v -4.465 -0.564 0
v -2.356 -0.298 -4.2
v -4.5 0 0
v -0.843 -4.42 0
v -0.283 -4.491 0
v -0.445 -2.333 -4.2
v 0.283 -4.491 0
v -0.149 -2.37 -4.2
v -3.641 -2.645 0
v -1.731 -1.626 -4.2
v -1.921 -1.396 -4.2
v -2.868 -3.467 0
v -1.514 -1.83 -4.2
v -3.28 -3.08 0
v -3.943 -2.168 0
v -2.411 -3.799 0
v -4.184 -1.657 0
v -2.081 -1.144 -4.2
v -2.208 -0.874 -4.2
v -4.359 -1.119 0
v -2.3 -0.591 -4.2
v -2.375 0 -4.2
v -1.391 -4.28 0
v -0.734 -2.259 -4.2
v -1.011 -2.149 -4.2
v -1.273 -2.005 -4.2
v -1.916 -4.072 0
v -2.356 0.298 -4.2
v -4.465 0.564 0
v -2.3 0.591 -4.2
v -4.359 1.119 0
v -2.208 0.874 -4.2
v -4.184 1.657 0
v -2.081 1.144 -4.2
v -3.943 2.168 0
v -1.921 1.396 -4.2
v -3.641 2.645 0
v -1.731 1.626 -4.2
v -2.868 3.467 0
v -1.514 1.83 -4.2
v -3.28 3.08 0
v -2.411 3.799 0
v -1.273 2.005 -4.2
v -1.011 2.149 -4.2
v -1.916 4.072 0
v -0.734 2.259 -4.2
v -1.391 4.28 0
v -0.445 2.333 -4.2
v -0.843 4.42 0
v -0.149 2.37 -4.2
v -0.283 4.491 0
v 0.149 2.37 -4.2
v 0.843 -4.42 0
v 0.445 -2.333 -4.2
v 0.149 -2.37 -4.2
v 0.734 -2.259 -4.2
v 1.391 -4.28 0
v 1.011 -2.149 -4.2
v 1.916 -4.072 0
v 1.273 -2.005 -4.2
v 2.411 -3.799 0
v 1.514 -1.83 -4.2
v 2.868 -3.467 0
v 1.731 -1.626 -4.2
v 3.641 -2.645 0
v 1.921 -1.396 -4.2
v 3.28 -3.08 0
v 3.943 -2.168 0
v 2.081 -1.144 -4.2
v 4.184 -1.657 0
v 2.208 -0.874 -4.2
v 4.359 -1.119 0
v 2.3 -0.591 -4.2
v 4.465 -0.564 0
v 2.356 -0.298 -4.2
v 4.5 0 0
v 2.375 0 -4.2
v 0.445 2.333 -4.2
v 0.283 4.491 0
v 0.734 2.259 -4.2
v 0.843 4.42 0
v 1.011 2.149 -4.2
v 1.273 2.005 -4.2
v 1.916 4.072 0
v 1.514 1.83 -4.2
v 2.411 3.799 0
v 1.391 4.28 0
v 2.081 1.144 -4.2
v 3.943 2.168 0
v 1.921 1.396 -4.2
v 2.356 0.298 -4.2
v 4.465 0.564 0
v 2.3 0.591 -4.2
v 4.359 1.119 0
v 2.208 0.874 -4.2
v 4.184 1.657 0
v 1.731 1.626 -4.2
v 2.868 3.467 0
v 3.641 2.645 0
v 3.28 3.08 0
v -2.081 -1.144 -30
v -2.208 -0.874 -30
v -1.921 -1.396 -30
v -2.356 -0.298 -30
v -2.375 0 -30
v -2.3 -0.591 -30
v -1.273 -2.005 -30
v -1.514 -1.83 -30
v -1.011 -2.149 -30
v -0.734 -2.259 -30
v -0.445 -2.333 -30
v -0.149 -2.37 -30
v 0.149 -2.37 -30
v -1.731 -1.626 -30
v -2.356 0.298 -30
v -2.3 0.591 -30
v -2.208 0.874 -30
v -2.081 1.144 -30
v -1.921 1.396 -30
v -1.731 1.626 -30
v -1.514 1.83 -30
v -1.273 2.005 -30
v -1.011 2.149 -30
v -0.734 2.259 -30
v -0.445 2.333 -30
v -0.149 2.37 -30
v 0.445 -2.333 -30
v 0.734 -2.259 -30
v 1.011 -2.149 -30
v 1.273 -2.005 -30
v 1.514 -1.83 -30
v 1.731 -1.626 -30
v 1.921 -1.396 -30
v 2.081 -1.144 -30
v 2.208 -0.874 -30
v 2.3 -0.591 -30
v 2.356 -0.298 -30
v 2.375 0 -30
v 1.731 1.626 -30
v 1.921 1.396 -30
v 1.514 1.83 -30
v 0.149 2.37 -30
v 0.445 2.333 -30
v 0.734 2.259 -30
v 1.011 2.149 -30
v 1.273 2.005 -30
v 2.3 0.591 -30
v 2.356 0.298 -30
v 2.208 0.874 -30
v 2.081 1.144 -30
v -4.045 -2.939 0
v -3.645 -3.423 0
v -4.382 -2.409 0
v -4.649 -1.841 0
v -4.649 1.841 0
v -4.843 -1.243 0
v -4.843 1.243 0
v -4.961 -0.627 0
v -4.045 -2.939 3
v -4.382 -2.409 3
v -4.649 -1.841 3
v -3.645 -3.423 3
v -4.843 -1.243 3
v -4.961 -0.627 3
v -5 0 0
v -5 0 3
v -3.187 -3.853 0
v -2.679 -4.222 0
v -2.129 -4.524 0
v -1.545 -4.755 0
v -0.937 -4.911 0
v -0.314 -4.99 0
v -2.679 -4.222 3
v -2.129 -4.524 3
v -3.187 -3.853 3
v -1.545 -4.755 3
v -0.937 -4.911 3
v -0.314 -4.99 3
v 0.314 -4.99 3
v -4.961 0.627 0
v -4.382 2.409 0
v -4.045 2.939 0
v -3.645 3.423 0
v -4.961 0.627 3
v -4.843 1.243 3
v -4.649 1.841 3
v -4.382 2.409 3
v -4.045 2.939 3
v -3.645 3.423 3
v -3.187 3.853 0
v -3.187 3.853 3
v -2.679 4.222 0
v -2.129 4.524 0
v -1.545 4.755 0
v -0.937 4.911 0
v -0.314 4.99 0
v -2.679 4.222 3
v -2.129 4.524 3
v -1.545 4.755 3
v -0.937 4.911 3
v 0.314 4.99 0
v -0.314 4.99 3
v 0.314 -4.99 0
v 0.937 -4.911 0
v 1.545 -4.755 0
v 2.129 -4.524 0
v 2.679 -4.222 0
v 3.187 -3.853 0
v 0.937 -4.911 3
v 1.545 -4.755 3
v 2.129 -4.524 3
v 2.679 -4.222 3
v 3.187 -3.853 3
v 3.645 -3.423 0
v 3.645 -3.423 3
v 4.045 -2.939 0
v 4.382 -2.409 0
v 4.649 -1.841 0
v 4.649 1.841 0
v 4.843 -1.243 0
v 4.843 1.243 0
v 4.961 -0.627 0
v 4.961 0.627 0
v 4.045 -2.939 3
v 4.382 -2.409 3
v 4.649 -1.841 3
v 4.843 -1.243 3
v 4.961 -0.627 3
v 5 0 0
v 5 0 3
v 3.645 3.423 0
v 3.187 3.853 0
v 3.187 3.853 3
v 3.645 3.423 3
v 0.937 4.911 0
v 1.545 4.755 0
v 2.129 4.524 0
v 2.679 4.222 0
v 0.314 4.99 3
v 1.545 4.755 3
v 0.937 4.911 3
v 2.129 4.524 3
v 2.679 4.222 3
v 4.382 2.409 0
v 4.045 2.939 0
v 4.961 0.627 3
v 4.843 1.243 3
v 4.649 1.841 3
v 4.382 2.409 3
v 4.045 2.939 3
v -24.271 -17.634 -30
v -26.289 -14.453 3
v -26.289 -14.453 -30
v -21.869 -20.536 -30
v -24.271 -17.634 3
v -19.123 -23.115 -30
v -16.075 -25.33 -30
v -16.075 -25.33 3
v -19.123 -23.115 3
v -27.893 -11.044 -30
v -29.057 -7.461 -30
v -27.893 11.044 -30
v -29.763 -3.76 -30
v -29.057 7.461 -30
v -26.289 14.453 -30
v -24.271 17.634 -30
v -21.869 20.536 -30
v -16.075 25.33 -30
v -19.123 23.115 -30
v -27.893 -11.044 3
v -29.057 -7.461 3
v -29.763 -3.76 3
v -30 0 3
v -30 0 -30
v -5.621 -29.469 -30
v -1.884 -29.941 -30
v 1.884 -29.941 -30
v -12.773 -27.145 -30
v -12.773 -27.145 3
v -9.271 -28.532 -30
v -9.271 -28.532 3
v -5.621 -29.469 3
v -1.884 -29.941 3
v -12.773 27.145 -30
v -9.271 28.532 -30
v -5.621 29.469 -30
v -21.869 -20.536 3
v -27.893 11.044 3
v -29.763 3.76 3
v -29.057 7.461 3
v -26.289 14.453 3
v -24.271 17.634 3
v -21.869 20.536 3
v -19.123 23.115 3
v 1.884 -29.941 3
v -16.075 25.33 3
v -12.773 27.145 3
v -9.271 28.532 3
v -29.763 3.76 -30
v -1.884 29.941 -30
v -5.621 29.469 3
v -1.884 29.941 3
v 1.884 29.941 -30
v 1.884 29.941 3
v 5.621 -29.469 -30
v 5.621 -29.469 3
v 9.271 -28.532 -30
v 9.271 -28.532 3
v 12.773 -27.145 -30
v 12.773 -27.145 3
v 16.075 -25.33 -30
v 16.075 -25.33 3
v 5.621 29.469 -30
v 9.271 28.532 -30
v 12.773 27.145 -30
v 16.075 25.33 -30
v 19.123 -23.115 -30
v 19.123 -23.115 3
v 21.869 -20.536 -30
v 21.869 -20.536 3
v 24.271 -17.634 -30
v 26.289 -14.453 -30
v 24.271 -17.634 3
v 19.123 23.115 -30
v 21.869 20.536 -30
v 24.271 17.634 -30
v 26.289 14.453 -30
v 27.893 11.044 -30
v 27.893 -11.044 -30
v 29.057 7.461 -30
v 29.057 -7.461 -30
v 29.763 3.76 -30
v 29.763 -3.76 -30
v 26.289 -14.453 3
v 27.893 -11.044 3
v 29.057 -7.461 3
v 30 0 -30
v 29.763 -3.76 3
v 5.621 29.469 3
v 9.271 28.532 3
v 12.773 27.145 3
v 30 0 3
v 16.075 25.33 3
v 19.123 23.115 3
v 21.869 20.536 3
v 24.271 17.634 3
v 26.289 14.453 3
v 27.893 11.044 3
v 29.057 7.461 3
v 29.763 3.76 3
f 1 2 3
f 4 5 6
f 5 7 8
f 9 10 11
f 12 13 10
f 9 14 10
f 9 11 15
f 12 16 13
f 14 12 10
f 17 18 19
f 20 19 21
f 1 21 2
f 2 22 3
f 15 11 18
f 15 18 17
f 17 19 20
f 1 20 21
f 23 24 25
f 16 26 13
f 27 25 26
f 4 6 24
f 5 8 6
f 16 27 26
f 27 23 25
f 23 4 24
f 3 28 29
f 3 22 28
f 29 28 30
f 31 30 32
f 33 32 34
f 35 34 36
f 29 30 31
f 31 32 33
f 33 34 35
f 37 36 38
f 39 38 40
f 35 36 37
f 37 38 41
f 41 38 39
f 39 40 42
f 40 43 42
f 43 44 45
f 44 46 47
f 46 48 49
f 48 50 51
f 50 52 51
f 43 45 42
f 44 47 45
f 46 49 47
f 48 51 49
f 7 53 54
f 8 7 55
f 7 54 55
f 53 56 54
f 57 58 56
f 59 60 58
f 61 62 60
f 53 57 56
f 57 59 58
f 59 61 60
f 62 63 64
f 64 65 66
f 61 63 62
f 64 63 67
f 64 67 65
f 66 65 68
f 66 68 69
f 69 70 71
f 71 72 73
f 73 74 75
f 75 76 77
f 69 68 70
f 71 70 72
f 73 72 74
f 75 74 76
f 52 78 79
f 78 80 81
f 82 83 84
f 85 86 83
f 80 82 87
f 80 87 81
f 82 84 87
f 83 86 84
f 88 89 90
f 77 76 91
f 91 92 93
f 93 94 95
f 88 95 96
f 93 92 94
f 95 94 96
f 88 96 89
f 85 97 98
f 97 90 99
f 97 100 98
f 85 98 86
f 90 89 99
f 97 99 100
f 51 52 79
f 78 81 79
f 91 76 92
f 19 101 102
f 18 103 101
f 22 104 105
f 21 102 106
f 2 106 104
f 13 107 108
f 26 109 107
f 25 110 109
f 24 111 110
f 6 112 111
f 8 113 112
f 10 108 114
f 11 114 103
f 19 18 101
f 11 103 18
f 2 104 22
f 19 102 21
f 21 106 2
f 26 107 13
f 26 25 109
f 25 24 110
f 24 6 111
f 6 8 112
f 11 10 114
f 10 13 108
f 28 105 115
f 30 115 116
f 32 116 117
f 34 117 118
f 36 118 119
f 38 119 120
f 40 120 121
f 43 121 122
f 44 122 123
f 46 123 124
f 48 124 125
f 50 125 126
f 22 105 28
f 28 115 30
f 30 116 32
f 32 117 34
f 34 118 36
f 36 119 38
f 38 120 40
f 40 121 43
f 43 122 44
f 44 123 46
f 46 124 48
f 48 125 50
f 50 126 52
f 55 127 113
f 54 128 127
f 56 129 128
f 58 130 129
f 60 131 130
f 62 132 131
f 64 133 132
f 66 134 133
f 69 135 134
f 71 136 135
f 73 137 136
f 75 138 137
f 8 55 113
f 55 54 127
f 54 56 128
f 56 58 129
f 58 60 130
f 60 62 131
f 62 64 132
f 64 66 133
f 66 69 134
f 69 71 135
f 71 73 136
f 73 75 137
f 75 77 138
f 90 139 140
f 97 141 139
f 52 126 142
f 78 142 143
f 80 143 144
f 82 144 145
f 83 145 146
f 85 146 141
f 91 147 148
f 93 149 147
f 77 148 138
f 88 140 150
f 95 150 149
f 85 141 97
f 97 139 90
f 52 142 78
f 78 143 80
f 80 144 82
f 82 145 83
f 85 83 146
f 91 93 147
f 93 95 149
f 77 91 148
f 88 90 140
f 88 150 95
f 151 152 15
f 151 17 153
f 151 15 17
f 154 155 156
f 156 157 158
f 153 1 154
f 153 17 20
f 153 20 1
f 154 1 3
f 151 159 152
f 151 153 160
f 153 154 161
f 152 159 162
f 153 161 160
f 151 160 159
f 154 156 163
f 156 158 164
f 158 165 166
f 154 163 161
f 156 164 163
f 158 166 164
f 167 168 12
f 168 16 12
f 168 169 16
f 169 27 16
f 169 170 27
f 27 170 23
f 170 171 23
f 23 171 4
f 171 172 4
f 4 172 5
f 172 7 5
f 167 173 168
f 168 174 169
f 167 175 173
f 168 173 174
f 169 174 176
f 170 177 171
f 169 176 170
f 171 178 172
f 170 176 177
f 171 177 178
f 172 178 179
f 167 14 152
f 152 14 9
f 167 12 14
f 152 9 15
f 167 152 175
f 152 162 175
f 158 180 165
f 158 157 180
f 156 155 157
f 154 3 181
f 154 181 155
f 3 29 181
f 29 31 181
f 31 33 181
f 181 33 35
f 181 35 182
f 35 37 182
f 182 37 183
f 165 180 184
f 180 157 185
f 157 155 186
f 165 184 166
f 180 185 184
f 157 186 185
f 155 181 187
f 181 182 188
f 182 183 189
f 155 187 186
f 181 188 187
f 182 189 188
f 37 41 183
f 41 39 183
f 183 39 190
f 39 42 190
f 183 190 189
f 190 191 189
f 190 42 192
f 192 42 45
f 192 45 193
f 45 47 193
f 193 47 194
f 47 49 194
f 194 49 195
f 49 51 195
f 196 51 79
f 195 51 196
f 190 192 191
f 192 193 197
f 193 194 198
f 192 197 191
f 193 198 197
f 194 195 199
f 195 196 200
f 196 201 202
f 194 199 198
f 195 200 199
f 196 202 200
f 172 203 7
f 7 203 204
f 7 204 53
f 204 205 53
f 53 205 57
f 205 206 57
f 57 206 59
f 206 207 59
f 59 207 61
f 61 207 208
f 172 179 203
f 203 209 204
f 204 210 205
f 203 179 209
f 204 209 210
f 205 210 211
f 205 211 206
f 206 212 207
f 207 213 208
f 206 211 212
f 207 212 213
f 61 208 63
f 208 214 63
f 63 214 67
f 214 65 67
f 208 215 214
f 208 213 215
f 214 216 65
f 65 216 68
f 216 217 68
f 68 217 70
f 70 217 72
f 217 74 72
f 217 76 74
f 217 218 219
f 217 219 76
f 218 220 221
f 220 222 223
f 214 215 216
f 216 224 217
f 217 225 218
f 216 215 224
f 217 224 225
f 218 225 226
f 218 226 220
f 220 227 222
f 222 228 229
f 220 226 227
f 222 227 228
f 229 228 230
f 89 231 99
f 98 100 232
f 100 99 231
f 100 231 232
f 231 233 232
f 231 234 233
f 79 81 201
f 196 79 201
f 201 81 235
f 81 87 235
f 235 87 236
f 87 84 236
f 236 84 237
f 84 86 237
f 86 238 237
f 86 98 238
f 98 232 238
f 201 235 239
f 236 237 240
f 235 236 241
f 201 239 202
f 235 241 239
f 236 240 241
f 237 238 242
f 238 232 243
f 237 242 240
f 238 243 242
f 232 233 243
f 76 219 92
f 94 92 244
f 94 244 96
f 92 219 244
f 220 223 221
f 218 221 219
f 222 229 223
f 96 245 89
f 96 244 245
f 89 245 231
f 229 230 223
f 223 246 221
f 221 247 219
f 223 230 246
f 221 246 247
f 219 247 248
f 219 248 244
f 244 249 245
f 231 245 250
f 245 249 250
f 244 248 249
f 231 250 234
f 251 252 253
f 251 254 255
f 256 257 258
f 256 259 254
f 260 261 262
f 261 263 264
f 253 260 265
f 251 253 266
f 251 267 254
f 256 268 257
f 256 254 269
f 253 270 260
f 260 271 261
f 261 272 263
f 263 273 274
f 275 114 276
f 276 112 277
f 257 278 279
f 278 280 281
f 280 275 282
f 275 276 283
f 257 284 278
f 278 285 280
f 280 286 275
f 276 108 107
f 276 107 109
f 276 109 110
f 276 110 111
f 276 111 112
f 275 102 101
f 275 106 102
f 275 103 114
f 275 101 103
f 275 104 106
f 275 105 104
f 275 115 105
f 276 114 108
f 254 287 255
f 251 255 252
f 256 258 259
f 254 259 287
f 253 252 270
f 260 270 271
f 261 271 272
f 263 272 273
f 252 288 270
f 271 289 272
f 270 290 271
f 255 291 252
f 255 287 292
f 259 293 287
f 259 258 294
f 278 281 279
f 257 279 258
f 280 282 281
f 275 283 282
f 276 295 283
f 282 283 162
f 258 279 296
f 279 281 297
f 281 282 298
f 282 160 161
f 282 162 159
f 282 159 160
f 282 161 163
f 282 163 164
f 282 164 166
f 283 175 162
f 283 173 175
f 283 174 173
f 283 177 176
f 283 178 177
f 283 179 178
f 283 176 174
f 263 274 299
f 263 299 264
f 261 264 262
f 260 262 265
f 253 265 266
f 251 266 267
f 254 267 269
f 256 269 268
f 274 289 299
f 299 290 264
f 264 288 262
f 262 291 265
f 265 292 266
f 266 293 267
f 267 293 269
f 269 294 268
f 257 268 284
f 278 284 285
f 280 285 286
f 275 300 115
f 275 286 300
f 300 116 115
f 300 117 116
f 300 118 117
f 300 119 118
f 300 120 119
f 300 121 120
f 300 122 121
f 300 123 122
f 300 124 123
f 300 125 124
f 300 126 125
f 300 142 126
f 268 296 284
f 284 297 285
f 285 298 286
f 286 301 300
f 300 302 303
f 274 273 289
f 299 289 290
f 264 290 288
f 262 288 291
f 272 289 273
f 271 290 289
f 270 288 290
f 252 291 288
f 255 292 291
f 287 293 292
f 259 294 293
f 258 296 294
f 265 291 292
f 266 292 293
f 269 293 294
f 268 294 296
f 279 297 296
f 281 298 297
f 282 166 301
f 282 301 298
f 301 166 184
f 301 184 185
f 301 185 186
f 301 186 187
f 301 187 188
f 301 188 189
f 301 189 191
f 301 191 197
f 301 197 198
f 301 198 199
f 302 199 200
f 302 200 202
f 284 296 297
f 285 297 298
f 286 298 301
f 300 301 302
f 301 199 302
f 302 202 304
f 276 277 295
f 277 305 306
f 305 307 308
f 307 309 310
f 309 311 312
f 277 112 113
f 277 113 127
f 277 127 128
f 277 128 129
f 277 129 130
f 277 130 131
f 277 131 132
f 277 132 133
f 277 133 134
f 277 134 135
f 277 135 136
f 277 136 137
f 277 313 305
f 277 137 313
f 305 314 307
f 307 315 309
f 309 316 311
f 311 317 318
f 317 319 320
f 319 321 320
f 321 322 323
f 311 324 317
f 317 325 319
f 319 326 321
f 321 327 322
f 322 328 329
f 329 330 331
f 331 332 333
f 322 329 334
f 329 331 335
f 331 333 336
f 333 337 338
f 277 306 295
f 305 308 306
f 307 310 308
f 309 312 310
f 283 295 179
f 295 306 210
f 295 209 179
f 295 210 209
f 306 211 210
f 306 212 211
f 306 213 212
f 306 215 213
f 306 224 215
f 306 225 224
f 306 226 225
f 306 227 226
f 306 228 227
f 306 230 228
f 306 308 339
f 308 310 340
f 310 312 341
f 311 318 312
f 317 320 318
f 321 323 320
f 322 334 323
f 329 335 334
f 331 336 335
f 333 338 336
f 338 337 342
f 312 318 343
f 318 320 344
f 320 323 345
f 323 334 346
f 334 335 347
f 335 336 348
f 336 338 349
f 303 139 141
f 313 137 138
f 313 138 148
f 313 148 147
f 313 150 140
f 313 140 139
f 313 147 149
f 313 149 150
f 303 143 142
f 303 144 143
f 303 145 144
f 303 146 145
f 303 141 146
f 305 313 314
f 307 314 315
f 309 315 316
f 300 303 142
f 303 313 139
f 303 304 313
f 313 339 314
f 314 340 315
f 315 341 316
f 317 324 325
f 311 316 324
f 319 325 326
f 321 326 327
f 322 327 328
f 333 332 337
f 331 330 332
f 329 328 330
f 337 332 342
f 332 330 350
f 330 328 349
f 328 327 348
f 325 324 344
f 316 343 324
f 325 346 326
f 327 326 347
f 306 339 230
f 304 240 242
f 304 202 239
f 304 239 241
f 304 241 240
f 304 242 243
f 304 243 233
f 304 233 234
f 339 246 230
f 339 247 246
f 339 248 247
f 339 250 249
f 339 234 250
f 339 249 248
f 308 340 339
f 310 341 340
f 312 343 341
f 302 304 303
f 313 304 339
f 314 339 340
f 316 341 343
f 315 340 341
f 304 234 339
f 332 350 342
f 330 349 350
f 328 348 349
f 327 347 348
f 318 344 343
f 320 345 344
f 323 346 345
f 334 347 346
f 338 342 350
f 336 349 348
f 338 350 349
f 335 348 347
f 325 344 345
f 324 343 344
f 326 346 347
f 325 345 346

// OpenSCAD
$fn = 50;

difference() {
	union() {
		translate(v = [0, 0, -30.0]) {
			cylinder(h = 33, r = 30.0);
		}
	}
	union() {
		translate(v = [0, 0, 0]) {
			rotate(a = [0, 0, 0]) {
				difference() {
					union() {
						translate(v = [0, 0, -33.0]) {
							cylinder(h = 33, r = 2.25);
						}
						translate(v = [0, 0, -4.2]) {
							cylinder(h = 4.2, r1 = 2.375, r2 = 4.5);
						}
						translate(v = [0, 0, -33.0]) {
							cylinder(h = 33, r = 2.375);
						}
						translate(v = [0, 0, -33.0]) {
							cylinder(h = 33, r = 2.25);
						}
					}
					union();
				}
			}
		}
		#cylinder(h = 3, r = 5.0);
	}
}
